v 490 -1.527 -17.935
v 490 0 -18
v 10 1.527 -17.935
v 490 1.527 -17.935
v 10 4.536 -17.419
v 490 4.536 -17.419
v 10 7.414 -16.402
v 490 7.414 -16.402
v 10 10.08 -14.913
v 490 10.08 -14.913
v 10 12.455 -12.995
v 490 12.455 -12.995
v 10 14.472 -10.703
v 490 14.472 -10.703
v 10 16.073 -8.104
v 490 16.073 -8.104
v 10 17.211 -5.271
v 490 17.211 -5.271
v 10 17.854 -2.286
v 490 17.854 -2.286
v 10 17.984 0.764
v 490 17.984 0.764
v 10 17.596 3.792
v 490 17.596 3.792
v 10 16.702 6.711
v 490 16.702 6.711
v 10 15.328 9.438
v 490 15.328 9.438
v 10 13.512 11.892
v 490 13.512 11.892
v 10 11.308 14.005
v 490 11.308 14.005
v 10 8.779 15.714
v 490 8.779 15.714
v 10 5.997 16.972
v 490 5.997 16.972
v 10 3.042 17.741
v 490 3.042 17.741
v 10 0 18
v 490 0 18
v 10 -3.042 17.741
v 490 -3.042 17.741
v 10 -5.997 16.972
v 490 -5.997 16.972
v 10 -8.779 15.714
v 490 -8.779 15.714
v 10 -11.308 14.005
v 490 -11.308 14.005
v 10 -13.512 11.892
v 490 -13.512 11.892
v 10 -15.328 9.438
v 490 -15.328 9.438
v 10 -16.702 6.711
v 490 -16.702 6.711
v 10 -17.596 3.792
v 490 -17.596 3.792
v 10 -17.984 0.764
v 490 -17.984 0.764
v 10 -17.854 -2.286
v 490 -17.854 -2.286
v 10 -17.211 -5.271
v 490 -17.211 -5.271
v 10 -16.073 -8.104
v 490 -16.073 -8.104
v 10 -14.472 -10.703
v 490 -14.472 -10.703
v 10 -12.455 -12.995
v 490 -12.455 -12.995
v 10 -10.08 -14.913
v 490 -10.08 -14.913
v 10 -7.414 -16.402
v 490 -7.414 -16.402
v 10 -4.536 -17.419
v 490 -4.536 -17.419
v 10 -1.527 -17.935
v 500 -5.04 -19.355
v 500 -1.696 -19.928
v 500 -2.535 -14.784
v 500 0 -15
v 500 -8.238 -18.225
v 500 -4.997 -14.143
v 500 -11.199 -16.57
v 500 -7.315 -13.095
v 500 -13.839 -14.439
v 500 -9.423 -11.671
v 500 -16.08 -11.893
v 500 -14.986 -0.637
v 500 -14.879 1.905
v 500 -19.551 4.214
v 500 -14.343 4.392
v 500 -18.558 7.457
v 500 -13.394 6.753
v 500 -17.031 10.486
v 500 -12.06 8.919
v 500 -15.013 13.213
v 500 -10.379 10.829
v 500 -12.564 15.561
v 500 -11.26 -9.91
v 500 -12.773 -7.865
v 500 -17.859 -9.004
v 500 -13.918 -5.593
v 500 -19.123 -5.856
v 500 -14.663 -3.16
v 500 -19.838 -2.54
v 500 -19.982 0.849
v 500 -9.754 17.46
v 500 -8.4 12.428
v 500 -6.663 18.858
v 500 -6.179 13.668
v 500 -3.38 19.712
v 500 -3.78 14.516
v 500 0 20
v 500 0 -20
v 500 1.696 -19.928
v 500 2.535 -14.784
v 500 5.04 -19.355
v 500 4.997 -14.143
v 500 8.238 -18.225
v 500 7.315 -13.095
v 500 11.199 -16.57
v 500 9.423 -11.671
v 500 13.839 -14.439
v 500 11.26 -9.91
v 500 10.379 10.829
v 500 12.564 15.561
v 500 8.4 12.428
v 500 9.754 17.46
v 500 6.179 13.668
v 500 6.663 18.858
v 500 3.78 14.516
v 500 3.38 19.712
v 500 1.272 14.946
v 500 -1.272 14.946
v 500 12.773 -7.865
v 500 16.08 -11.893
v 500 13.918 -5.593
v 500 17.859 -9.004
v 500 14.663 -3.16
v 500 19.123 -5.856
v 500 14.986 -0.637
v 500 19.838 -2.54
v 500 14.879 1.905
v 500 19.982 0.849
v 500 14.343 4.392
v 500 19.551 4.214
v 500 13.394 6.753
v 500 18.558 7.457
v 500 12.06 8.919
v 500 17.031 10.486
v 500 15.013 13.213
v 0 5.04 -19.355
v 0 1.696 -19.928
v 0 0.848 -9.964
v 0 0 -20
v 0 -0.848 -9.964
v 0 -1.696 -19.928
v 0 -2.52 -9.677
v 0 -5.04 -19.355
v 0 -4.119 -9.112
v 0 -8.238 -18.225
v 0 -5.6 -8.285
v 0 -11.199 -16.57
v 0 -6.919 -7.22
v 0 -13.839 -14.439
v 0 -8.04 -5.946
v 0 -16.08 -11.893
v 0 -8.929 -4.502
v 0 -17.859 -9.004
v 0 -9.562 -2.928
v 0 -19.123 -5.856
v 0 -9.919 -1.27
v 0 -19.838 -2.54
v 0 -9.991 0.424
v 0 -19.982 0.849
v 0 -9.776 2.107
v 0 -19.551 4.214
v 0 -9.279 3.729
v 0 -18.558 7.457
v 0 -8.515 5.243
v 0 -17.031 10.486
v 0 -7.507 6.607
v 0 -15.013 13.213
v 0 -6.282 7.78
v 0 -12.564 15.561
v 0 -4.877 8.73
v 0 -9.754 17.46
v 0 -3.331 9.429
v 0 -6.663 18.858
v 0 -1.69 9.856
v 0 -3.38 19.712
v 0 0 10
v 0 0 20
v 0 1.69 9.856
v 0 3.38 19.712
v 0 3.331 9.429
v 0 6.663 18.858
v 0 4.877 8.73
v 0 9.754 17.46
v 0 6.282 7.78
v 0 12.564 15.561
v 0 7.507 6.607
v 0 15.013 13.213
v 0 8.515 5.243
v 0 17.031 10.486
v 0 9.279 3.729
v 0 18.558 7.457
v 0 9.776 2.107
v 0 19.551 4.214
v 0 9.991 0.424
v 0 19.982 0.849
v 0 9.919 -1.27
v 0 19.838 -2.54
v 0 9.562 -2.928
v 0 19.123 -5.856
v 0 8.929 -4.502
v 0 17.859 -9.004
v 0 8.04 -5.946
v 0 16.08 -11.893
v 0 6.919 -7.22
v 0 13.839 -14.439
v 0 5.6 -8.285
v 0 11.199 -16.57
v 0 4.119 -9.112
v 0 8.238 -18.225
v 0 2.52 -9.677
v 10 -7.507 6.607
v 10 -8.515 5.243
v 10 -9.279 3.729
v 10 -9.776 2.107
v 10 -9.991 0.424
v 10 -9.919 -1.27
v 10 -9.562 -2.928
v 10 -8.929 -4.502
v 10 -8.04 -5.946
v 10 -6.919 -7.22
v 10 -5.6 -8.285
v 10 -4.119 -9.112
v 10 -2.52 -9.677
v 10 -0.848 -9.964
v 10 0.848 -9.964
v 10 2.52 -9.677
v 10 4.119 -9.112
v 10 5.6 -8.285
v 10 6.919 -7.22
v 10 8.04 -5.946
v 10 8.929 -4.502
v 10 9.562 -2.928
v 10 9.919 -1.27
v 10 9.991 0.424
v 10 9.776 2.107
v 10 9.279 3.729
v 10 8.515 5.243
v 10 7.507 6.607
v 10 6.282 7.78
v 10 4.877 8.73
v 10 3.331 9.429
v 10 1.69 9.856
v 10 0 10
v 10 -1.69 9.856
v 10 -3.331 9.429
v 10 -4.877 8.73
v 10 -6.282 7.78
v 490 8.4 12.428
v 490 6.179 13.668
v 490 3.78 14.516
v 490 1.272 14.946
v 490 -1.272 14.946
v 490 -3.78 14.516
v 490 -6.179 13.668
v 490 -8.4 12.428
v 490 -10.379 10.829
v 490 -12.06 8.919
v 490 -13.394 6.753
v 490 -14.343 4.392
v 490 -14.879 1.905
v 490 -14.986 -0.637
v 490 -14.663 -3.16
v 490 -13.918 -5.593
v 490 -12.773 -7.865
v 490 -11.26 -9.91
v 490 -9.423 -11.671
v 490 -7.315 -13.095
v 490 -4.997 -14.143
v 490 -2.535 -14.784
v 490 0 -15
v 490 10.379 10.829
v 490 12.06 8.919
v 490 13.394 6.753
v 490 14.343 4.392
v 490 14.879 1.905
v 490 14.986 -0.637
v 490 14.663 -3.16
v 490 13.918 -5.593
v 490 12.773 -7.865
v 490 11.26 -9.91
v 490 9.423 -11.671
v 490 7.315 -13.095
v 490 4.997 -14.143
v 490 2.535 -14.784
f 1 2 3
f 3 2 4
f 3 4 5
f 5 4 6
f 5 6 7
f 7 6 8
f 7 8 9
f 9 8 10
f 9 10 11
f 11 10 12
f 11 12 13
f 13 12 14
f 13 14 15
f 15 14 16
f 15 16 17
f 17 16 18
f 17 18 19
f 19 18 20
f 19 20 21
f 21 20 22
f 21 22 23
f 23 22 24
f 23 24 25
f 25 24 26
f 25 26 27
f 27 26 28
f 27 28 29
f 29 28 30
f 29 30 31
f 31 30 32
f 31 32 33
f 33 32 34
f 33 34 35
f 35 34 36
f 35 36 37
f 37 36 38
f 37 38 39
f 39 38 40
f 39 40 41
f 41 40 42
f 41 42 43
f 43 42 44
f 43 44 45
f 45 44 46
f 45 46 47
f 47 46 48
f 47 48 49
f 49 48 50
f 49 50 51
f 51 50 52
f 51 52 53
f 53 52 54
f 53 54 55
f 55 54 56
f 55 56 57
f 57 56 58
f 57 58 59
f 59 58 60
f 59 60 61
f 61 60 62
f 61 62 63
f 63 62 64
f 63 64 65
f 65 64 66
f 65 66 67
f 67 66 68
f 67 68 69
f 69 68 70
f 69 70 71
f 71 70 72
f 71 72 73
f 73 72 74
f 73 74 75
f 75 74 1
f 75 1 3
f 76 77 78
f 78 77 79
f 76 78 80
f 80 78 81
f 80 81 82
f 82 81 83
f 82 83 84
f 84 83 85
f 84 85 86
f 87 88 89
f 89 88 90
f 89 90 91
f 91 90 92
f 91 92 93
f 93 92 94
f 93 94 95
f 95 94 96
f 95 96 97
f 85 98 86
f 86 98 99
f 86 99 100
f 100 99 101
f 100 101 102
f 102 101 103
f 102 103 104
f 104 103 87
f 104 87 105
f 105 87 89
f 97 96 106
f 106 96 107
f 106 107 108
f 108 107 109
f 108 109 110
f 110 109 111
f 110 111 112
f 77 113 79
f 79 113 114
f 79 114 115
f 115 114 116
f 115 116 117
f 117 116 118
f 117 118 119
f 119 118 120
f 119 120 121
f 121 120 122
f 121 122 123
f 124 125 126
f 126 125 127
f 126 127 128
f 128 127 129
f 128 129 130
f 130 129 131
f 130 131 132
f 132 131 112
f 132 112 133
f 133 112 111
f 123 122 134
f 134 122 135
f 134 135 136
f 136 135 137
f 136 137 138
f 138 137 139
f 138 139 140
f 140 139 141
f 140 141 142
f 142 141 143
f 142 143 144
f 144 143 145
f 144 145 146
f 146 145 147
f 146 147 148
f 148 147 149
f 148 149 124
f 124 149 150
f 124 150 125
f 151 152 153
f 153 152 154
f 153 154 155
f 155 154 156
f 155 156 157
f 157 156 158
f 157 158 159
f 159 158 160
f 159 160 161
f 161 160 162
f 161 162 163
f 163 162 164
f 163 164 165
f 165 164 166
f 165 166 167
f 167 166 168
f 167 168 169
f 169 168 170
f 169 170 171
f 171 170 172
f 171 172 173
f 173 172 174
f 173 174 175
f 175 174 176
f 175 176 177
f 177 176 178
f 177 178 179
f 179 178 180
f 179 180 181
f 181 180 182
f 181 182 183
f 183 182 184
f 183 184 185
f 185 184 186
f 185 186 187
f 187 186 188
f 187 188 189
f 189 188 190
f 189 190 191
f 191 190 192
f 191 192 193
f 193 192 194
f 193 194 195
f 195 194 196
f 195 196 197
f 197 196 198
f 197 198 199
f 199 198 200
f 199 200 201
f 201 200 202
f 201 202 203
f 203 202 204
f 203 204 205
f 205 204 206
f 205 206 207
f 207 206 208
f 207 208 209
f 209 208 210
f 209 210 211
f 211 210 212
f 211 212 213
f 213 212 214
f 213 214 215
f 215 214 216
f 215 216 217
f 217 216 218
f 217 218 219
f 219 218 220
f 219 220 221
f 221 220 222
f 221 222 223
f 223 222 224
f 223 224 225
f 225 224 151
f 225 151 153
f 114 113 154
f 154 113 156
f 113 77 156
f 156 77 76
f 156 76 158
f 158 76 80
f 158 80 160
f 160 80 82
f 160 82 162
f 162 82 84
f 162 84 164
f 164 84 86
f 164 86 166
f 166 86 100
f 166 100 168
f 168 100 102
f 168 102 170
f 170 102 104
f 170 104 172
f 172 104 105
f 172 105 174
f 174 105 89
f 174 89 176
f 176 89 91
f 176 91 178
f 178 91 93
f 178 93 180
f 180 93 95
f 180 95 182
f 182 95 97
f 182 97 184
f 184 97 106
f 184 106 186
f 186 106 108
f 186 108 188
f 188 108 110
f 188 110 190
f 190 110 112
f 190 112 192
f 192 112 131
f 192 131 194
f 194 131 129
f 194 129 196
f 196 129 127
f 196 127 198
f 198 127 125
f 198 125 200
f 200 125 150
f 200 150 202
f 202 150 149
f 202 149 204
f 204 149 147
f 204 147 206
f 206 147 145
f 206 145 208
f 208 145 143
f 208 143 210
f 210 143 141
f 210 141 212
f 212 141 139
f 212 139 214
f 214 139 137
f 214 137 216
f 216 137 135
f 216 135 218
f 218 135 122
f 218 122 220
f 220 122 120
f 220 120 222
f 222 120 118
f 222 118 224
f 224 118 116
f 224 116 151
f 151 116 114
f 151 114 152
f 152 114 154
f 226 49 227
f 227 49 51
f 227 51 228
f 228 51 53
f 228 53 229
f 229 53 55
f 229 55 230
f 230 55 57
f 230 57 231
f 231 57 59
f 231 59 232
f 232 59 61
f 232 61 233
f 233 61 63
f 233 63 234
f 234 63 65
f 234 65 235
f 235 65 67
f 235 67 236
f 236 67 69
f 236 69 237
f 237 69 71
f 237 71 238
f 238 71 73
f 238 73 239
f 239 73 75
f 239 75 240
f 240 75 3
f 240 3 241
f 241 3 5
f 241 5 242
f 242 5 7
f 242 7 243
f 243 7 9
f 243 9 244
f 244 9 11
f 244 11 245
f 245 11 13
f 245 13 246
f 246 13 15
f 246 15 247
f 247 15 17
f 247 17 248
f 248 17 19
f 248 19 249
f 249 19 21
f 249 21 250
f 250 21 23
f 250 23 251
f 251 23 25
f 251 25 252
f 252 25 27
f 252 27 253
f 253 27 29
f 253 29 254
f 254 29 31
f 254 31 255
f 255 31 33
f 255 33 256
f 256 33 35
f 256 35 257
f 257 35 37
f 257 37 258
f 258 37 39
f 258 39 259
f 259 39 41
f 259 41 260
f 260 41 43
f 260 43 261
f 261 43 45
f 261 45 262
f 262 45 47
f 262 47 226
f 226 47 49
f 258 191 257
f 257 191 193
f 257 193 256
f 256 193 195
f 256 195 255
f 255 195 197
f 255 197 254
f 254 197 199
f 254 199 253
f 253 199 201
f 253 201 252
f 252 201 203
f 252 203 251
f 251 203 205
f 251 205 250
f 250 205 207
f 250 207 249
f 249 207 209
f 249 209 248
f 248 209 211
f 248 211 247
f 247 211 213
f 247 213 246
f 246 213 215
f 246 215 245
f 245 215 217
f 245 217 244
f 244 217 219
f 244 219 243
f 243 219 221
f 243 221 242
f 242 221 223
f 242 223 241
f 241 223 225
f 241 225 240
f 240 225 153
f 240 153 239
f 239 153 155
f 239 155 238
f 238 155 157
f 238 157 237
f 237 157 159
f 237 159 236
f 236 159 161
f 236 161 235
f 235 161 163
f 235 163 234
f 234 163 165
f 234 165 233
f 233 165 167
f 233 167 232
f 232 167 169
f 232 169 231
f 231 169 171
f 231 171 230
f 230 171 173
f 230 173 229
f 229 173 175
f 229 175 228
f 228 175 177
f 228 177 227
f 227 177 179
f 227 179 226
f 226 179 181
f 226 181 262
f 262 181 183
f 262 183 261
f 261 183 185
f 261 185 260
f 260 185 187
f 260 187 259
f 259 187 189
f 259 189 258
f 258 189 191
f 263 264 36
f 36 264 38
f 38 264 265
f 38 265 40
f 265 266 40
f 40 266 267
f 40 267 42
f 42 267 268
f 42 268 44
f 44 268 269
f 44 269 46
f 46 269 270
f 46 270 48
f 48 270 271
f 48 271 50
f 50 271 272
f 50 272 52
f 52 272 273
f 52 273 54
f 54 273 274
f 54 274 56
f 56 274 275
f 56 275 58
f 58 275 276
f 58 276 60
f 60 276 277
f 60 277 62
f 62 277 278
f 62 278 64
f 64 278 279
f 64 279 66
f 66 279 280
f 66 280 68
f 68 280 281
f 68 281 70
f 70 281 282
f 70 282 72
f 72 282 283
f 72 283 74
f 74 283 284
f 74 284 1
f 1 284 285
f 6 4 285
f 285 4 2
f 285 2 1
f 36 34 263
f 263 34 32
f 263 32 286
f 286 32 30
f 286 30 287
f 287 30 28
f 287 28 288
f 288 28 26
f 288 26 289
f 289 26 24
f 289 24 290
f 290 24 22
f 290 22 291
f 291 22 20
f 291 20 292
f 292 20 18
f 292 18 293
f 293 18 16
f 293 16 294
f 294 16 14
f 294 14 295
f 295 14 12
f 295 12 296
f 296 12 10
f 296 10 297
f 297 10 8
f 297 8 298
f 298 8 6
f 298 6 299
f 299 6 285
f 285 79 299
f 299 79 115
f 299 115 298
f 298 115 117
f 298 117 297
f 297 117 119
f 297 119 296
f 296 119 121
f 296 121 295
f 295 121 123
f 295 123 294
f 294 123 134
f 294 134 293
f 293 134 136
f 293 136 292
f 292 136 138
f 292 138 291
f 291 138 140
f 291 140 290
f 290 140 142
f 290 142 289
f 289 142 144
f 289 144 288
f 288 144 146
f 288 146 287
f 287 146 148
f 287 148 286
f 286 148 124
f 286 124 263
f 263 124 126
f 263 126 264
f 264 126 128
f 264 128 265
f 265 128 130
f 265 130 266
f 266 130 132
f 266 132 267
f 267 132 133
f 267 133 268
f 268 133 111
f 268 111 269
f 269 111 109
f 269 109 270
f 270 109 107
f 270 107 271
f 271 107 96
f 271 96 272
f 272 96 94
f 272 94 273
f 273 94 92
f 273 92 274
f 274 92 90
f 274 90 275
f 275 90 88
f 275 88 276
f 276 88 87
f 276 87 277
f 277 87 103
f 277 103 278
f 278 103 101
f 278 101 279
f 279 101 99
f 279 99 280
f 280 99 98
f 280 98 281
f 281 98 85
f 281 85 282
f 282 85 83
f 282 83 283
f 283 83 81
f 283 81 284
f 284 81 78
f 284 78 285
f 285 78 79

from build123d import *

# Parameters (mm, degrees)
SKETCH1_R           = 20
SKETCH1_R_2         = 18
BOSS_EXTRUDE1_DEPTH = 500
SKETCH2_R           = 18
SKETCH2_R_2         = 10
BOSS_EXTRUDE2_DEPTH = 10
SKETCH5_R           = 18
SKETCH5_R_2         = 15
BOSS_EXTRUDE3_DEPTH = 10


with BuildPart() as part:
    # Sketch1 → Boss-Extrude1 (new body)
    with BuildSketch(Plane(origin=(0, 0, 0), x_dir=(0, 0, -1), z_dir=(1, 0, 0))):
        Circle(SKETCH1_R)
        Circle(SKETCH1_R_2, mode=Mode.SUBTRACT)
    extrude(amount=BOSS_EXTRUDE1_DEPTH)

    # Sketch2 → Boss-Extrude2 (add)
    with BuildSketch(Plane.ZY):
        Circle(SKETCH2_R)
        Circle(SKETCH2_R_2, mode=Mode.SUBTRACT)
    extrude(amount=-BOSS_EXTRUDE2_DEPTH)

    # Sketch5 → Boss-Extrude3 (add)
    with BuildSketch(Plane(origin=(500, 0, 0), x_dir=(0, 0, -1), z_dir=(1, 0, 0))):
        Circle(SKETCH5_R)
        Circle(SKETCH5_R_2, mode=Mode.SUBTRACT)
    extrude(amount=-BOSS_EXTRUDE3_DEPTH)


solid = part.part
